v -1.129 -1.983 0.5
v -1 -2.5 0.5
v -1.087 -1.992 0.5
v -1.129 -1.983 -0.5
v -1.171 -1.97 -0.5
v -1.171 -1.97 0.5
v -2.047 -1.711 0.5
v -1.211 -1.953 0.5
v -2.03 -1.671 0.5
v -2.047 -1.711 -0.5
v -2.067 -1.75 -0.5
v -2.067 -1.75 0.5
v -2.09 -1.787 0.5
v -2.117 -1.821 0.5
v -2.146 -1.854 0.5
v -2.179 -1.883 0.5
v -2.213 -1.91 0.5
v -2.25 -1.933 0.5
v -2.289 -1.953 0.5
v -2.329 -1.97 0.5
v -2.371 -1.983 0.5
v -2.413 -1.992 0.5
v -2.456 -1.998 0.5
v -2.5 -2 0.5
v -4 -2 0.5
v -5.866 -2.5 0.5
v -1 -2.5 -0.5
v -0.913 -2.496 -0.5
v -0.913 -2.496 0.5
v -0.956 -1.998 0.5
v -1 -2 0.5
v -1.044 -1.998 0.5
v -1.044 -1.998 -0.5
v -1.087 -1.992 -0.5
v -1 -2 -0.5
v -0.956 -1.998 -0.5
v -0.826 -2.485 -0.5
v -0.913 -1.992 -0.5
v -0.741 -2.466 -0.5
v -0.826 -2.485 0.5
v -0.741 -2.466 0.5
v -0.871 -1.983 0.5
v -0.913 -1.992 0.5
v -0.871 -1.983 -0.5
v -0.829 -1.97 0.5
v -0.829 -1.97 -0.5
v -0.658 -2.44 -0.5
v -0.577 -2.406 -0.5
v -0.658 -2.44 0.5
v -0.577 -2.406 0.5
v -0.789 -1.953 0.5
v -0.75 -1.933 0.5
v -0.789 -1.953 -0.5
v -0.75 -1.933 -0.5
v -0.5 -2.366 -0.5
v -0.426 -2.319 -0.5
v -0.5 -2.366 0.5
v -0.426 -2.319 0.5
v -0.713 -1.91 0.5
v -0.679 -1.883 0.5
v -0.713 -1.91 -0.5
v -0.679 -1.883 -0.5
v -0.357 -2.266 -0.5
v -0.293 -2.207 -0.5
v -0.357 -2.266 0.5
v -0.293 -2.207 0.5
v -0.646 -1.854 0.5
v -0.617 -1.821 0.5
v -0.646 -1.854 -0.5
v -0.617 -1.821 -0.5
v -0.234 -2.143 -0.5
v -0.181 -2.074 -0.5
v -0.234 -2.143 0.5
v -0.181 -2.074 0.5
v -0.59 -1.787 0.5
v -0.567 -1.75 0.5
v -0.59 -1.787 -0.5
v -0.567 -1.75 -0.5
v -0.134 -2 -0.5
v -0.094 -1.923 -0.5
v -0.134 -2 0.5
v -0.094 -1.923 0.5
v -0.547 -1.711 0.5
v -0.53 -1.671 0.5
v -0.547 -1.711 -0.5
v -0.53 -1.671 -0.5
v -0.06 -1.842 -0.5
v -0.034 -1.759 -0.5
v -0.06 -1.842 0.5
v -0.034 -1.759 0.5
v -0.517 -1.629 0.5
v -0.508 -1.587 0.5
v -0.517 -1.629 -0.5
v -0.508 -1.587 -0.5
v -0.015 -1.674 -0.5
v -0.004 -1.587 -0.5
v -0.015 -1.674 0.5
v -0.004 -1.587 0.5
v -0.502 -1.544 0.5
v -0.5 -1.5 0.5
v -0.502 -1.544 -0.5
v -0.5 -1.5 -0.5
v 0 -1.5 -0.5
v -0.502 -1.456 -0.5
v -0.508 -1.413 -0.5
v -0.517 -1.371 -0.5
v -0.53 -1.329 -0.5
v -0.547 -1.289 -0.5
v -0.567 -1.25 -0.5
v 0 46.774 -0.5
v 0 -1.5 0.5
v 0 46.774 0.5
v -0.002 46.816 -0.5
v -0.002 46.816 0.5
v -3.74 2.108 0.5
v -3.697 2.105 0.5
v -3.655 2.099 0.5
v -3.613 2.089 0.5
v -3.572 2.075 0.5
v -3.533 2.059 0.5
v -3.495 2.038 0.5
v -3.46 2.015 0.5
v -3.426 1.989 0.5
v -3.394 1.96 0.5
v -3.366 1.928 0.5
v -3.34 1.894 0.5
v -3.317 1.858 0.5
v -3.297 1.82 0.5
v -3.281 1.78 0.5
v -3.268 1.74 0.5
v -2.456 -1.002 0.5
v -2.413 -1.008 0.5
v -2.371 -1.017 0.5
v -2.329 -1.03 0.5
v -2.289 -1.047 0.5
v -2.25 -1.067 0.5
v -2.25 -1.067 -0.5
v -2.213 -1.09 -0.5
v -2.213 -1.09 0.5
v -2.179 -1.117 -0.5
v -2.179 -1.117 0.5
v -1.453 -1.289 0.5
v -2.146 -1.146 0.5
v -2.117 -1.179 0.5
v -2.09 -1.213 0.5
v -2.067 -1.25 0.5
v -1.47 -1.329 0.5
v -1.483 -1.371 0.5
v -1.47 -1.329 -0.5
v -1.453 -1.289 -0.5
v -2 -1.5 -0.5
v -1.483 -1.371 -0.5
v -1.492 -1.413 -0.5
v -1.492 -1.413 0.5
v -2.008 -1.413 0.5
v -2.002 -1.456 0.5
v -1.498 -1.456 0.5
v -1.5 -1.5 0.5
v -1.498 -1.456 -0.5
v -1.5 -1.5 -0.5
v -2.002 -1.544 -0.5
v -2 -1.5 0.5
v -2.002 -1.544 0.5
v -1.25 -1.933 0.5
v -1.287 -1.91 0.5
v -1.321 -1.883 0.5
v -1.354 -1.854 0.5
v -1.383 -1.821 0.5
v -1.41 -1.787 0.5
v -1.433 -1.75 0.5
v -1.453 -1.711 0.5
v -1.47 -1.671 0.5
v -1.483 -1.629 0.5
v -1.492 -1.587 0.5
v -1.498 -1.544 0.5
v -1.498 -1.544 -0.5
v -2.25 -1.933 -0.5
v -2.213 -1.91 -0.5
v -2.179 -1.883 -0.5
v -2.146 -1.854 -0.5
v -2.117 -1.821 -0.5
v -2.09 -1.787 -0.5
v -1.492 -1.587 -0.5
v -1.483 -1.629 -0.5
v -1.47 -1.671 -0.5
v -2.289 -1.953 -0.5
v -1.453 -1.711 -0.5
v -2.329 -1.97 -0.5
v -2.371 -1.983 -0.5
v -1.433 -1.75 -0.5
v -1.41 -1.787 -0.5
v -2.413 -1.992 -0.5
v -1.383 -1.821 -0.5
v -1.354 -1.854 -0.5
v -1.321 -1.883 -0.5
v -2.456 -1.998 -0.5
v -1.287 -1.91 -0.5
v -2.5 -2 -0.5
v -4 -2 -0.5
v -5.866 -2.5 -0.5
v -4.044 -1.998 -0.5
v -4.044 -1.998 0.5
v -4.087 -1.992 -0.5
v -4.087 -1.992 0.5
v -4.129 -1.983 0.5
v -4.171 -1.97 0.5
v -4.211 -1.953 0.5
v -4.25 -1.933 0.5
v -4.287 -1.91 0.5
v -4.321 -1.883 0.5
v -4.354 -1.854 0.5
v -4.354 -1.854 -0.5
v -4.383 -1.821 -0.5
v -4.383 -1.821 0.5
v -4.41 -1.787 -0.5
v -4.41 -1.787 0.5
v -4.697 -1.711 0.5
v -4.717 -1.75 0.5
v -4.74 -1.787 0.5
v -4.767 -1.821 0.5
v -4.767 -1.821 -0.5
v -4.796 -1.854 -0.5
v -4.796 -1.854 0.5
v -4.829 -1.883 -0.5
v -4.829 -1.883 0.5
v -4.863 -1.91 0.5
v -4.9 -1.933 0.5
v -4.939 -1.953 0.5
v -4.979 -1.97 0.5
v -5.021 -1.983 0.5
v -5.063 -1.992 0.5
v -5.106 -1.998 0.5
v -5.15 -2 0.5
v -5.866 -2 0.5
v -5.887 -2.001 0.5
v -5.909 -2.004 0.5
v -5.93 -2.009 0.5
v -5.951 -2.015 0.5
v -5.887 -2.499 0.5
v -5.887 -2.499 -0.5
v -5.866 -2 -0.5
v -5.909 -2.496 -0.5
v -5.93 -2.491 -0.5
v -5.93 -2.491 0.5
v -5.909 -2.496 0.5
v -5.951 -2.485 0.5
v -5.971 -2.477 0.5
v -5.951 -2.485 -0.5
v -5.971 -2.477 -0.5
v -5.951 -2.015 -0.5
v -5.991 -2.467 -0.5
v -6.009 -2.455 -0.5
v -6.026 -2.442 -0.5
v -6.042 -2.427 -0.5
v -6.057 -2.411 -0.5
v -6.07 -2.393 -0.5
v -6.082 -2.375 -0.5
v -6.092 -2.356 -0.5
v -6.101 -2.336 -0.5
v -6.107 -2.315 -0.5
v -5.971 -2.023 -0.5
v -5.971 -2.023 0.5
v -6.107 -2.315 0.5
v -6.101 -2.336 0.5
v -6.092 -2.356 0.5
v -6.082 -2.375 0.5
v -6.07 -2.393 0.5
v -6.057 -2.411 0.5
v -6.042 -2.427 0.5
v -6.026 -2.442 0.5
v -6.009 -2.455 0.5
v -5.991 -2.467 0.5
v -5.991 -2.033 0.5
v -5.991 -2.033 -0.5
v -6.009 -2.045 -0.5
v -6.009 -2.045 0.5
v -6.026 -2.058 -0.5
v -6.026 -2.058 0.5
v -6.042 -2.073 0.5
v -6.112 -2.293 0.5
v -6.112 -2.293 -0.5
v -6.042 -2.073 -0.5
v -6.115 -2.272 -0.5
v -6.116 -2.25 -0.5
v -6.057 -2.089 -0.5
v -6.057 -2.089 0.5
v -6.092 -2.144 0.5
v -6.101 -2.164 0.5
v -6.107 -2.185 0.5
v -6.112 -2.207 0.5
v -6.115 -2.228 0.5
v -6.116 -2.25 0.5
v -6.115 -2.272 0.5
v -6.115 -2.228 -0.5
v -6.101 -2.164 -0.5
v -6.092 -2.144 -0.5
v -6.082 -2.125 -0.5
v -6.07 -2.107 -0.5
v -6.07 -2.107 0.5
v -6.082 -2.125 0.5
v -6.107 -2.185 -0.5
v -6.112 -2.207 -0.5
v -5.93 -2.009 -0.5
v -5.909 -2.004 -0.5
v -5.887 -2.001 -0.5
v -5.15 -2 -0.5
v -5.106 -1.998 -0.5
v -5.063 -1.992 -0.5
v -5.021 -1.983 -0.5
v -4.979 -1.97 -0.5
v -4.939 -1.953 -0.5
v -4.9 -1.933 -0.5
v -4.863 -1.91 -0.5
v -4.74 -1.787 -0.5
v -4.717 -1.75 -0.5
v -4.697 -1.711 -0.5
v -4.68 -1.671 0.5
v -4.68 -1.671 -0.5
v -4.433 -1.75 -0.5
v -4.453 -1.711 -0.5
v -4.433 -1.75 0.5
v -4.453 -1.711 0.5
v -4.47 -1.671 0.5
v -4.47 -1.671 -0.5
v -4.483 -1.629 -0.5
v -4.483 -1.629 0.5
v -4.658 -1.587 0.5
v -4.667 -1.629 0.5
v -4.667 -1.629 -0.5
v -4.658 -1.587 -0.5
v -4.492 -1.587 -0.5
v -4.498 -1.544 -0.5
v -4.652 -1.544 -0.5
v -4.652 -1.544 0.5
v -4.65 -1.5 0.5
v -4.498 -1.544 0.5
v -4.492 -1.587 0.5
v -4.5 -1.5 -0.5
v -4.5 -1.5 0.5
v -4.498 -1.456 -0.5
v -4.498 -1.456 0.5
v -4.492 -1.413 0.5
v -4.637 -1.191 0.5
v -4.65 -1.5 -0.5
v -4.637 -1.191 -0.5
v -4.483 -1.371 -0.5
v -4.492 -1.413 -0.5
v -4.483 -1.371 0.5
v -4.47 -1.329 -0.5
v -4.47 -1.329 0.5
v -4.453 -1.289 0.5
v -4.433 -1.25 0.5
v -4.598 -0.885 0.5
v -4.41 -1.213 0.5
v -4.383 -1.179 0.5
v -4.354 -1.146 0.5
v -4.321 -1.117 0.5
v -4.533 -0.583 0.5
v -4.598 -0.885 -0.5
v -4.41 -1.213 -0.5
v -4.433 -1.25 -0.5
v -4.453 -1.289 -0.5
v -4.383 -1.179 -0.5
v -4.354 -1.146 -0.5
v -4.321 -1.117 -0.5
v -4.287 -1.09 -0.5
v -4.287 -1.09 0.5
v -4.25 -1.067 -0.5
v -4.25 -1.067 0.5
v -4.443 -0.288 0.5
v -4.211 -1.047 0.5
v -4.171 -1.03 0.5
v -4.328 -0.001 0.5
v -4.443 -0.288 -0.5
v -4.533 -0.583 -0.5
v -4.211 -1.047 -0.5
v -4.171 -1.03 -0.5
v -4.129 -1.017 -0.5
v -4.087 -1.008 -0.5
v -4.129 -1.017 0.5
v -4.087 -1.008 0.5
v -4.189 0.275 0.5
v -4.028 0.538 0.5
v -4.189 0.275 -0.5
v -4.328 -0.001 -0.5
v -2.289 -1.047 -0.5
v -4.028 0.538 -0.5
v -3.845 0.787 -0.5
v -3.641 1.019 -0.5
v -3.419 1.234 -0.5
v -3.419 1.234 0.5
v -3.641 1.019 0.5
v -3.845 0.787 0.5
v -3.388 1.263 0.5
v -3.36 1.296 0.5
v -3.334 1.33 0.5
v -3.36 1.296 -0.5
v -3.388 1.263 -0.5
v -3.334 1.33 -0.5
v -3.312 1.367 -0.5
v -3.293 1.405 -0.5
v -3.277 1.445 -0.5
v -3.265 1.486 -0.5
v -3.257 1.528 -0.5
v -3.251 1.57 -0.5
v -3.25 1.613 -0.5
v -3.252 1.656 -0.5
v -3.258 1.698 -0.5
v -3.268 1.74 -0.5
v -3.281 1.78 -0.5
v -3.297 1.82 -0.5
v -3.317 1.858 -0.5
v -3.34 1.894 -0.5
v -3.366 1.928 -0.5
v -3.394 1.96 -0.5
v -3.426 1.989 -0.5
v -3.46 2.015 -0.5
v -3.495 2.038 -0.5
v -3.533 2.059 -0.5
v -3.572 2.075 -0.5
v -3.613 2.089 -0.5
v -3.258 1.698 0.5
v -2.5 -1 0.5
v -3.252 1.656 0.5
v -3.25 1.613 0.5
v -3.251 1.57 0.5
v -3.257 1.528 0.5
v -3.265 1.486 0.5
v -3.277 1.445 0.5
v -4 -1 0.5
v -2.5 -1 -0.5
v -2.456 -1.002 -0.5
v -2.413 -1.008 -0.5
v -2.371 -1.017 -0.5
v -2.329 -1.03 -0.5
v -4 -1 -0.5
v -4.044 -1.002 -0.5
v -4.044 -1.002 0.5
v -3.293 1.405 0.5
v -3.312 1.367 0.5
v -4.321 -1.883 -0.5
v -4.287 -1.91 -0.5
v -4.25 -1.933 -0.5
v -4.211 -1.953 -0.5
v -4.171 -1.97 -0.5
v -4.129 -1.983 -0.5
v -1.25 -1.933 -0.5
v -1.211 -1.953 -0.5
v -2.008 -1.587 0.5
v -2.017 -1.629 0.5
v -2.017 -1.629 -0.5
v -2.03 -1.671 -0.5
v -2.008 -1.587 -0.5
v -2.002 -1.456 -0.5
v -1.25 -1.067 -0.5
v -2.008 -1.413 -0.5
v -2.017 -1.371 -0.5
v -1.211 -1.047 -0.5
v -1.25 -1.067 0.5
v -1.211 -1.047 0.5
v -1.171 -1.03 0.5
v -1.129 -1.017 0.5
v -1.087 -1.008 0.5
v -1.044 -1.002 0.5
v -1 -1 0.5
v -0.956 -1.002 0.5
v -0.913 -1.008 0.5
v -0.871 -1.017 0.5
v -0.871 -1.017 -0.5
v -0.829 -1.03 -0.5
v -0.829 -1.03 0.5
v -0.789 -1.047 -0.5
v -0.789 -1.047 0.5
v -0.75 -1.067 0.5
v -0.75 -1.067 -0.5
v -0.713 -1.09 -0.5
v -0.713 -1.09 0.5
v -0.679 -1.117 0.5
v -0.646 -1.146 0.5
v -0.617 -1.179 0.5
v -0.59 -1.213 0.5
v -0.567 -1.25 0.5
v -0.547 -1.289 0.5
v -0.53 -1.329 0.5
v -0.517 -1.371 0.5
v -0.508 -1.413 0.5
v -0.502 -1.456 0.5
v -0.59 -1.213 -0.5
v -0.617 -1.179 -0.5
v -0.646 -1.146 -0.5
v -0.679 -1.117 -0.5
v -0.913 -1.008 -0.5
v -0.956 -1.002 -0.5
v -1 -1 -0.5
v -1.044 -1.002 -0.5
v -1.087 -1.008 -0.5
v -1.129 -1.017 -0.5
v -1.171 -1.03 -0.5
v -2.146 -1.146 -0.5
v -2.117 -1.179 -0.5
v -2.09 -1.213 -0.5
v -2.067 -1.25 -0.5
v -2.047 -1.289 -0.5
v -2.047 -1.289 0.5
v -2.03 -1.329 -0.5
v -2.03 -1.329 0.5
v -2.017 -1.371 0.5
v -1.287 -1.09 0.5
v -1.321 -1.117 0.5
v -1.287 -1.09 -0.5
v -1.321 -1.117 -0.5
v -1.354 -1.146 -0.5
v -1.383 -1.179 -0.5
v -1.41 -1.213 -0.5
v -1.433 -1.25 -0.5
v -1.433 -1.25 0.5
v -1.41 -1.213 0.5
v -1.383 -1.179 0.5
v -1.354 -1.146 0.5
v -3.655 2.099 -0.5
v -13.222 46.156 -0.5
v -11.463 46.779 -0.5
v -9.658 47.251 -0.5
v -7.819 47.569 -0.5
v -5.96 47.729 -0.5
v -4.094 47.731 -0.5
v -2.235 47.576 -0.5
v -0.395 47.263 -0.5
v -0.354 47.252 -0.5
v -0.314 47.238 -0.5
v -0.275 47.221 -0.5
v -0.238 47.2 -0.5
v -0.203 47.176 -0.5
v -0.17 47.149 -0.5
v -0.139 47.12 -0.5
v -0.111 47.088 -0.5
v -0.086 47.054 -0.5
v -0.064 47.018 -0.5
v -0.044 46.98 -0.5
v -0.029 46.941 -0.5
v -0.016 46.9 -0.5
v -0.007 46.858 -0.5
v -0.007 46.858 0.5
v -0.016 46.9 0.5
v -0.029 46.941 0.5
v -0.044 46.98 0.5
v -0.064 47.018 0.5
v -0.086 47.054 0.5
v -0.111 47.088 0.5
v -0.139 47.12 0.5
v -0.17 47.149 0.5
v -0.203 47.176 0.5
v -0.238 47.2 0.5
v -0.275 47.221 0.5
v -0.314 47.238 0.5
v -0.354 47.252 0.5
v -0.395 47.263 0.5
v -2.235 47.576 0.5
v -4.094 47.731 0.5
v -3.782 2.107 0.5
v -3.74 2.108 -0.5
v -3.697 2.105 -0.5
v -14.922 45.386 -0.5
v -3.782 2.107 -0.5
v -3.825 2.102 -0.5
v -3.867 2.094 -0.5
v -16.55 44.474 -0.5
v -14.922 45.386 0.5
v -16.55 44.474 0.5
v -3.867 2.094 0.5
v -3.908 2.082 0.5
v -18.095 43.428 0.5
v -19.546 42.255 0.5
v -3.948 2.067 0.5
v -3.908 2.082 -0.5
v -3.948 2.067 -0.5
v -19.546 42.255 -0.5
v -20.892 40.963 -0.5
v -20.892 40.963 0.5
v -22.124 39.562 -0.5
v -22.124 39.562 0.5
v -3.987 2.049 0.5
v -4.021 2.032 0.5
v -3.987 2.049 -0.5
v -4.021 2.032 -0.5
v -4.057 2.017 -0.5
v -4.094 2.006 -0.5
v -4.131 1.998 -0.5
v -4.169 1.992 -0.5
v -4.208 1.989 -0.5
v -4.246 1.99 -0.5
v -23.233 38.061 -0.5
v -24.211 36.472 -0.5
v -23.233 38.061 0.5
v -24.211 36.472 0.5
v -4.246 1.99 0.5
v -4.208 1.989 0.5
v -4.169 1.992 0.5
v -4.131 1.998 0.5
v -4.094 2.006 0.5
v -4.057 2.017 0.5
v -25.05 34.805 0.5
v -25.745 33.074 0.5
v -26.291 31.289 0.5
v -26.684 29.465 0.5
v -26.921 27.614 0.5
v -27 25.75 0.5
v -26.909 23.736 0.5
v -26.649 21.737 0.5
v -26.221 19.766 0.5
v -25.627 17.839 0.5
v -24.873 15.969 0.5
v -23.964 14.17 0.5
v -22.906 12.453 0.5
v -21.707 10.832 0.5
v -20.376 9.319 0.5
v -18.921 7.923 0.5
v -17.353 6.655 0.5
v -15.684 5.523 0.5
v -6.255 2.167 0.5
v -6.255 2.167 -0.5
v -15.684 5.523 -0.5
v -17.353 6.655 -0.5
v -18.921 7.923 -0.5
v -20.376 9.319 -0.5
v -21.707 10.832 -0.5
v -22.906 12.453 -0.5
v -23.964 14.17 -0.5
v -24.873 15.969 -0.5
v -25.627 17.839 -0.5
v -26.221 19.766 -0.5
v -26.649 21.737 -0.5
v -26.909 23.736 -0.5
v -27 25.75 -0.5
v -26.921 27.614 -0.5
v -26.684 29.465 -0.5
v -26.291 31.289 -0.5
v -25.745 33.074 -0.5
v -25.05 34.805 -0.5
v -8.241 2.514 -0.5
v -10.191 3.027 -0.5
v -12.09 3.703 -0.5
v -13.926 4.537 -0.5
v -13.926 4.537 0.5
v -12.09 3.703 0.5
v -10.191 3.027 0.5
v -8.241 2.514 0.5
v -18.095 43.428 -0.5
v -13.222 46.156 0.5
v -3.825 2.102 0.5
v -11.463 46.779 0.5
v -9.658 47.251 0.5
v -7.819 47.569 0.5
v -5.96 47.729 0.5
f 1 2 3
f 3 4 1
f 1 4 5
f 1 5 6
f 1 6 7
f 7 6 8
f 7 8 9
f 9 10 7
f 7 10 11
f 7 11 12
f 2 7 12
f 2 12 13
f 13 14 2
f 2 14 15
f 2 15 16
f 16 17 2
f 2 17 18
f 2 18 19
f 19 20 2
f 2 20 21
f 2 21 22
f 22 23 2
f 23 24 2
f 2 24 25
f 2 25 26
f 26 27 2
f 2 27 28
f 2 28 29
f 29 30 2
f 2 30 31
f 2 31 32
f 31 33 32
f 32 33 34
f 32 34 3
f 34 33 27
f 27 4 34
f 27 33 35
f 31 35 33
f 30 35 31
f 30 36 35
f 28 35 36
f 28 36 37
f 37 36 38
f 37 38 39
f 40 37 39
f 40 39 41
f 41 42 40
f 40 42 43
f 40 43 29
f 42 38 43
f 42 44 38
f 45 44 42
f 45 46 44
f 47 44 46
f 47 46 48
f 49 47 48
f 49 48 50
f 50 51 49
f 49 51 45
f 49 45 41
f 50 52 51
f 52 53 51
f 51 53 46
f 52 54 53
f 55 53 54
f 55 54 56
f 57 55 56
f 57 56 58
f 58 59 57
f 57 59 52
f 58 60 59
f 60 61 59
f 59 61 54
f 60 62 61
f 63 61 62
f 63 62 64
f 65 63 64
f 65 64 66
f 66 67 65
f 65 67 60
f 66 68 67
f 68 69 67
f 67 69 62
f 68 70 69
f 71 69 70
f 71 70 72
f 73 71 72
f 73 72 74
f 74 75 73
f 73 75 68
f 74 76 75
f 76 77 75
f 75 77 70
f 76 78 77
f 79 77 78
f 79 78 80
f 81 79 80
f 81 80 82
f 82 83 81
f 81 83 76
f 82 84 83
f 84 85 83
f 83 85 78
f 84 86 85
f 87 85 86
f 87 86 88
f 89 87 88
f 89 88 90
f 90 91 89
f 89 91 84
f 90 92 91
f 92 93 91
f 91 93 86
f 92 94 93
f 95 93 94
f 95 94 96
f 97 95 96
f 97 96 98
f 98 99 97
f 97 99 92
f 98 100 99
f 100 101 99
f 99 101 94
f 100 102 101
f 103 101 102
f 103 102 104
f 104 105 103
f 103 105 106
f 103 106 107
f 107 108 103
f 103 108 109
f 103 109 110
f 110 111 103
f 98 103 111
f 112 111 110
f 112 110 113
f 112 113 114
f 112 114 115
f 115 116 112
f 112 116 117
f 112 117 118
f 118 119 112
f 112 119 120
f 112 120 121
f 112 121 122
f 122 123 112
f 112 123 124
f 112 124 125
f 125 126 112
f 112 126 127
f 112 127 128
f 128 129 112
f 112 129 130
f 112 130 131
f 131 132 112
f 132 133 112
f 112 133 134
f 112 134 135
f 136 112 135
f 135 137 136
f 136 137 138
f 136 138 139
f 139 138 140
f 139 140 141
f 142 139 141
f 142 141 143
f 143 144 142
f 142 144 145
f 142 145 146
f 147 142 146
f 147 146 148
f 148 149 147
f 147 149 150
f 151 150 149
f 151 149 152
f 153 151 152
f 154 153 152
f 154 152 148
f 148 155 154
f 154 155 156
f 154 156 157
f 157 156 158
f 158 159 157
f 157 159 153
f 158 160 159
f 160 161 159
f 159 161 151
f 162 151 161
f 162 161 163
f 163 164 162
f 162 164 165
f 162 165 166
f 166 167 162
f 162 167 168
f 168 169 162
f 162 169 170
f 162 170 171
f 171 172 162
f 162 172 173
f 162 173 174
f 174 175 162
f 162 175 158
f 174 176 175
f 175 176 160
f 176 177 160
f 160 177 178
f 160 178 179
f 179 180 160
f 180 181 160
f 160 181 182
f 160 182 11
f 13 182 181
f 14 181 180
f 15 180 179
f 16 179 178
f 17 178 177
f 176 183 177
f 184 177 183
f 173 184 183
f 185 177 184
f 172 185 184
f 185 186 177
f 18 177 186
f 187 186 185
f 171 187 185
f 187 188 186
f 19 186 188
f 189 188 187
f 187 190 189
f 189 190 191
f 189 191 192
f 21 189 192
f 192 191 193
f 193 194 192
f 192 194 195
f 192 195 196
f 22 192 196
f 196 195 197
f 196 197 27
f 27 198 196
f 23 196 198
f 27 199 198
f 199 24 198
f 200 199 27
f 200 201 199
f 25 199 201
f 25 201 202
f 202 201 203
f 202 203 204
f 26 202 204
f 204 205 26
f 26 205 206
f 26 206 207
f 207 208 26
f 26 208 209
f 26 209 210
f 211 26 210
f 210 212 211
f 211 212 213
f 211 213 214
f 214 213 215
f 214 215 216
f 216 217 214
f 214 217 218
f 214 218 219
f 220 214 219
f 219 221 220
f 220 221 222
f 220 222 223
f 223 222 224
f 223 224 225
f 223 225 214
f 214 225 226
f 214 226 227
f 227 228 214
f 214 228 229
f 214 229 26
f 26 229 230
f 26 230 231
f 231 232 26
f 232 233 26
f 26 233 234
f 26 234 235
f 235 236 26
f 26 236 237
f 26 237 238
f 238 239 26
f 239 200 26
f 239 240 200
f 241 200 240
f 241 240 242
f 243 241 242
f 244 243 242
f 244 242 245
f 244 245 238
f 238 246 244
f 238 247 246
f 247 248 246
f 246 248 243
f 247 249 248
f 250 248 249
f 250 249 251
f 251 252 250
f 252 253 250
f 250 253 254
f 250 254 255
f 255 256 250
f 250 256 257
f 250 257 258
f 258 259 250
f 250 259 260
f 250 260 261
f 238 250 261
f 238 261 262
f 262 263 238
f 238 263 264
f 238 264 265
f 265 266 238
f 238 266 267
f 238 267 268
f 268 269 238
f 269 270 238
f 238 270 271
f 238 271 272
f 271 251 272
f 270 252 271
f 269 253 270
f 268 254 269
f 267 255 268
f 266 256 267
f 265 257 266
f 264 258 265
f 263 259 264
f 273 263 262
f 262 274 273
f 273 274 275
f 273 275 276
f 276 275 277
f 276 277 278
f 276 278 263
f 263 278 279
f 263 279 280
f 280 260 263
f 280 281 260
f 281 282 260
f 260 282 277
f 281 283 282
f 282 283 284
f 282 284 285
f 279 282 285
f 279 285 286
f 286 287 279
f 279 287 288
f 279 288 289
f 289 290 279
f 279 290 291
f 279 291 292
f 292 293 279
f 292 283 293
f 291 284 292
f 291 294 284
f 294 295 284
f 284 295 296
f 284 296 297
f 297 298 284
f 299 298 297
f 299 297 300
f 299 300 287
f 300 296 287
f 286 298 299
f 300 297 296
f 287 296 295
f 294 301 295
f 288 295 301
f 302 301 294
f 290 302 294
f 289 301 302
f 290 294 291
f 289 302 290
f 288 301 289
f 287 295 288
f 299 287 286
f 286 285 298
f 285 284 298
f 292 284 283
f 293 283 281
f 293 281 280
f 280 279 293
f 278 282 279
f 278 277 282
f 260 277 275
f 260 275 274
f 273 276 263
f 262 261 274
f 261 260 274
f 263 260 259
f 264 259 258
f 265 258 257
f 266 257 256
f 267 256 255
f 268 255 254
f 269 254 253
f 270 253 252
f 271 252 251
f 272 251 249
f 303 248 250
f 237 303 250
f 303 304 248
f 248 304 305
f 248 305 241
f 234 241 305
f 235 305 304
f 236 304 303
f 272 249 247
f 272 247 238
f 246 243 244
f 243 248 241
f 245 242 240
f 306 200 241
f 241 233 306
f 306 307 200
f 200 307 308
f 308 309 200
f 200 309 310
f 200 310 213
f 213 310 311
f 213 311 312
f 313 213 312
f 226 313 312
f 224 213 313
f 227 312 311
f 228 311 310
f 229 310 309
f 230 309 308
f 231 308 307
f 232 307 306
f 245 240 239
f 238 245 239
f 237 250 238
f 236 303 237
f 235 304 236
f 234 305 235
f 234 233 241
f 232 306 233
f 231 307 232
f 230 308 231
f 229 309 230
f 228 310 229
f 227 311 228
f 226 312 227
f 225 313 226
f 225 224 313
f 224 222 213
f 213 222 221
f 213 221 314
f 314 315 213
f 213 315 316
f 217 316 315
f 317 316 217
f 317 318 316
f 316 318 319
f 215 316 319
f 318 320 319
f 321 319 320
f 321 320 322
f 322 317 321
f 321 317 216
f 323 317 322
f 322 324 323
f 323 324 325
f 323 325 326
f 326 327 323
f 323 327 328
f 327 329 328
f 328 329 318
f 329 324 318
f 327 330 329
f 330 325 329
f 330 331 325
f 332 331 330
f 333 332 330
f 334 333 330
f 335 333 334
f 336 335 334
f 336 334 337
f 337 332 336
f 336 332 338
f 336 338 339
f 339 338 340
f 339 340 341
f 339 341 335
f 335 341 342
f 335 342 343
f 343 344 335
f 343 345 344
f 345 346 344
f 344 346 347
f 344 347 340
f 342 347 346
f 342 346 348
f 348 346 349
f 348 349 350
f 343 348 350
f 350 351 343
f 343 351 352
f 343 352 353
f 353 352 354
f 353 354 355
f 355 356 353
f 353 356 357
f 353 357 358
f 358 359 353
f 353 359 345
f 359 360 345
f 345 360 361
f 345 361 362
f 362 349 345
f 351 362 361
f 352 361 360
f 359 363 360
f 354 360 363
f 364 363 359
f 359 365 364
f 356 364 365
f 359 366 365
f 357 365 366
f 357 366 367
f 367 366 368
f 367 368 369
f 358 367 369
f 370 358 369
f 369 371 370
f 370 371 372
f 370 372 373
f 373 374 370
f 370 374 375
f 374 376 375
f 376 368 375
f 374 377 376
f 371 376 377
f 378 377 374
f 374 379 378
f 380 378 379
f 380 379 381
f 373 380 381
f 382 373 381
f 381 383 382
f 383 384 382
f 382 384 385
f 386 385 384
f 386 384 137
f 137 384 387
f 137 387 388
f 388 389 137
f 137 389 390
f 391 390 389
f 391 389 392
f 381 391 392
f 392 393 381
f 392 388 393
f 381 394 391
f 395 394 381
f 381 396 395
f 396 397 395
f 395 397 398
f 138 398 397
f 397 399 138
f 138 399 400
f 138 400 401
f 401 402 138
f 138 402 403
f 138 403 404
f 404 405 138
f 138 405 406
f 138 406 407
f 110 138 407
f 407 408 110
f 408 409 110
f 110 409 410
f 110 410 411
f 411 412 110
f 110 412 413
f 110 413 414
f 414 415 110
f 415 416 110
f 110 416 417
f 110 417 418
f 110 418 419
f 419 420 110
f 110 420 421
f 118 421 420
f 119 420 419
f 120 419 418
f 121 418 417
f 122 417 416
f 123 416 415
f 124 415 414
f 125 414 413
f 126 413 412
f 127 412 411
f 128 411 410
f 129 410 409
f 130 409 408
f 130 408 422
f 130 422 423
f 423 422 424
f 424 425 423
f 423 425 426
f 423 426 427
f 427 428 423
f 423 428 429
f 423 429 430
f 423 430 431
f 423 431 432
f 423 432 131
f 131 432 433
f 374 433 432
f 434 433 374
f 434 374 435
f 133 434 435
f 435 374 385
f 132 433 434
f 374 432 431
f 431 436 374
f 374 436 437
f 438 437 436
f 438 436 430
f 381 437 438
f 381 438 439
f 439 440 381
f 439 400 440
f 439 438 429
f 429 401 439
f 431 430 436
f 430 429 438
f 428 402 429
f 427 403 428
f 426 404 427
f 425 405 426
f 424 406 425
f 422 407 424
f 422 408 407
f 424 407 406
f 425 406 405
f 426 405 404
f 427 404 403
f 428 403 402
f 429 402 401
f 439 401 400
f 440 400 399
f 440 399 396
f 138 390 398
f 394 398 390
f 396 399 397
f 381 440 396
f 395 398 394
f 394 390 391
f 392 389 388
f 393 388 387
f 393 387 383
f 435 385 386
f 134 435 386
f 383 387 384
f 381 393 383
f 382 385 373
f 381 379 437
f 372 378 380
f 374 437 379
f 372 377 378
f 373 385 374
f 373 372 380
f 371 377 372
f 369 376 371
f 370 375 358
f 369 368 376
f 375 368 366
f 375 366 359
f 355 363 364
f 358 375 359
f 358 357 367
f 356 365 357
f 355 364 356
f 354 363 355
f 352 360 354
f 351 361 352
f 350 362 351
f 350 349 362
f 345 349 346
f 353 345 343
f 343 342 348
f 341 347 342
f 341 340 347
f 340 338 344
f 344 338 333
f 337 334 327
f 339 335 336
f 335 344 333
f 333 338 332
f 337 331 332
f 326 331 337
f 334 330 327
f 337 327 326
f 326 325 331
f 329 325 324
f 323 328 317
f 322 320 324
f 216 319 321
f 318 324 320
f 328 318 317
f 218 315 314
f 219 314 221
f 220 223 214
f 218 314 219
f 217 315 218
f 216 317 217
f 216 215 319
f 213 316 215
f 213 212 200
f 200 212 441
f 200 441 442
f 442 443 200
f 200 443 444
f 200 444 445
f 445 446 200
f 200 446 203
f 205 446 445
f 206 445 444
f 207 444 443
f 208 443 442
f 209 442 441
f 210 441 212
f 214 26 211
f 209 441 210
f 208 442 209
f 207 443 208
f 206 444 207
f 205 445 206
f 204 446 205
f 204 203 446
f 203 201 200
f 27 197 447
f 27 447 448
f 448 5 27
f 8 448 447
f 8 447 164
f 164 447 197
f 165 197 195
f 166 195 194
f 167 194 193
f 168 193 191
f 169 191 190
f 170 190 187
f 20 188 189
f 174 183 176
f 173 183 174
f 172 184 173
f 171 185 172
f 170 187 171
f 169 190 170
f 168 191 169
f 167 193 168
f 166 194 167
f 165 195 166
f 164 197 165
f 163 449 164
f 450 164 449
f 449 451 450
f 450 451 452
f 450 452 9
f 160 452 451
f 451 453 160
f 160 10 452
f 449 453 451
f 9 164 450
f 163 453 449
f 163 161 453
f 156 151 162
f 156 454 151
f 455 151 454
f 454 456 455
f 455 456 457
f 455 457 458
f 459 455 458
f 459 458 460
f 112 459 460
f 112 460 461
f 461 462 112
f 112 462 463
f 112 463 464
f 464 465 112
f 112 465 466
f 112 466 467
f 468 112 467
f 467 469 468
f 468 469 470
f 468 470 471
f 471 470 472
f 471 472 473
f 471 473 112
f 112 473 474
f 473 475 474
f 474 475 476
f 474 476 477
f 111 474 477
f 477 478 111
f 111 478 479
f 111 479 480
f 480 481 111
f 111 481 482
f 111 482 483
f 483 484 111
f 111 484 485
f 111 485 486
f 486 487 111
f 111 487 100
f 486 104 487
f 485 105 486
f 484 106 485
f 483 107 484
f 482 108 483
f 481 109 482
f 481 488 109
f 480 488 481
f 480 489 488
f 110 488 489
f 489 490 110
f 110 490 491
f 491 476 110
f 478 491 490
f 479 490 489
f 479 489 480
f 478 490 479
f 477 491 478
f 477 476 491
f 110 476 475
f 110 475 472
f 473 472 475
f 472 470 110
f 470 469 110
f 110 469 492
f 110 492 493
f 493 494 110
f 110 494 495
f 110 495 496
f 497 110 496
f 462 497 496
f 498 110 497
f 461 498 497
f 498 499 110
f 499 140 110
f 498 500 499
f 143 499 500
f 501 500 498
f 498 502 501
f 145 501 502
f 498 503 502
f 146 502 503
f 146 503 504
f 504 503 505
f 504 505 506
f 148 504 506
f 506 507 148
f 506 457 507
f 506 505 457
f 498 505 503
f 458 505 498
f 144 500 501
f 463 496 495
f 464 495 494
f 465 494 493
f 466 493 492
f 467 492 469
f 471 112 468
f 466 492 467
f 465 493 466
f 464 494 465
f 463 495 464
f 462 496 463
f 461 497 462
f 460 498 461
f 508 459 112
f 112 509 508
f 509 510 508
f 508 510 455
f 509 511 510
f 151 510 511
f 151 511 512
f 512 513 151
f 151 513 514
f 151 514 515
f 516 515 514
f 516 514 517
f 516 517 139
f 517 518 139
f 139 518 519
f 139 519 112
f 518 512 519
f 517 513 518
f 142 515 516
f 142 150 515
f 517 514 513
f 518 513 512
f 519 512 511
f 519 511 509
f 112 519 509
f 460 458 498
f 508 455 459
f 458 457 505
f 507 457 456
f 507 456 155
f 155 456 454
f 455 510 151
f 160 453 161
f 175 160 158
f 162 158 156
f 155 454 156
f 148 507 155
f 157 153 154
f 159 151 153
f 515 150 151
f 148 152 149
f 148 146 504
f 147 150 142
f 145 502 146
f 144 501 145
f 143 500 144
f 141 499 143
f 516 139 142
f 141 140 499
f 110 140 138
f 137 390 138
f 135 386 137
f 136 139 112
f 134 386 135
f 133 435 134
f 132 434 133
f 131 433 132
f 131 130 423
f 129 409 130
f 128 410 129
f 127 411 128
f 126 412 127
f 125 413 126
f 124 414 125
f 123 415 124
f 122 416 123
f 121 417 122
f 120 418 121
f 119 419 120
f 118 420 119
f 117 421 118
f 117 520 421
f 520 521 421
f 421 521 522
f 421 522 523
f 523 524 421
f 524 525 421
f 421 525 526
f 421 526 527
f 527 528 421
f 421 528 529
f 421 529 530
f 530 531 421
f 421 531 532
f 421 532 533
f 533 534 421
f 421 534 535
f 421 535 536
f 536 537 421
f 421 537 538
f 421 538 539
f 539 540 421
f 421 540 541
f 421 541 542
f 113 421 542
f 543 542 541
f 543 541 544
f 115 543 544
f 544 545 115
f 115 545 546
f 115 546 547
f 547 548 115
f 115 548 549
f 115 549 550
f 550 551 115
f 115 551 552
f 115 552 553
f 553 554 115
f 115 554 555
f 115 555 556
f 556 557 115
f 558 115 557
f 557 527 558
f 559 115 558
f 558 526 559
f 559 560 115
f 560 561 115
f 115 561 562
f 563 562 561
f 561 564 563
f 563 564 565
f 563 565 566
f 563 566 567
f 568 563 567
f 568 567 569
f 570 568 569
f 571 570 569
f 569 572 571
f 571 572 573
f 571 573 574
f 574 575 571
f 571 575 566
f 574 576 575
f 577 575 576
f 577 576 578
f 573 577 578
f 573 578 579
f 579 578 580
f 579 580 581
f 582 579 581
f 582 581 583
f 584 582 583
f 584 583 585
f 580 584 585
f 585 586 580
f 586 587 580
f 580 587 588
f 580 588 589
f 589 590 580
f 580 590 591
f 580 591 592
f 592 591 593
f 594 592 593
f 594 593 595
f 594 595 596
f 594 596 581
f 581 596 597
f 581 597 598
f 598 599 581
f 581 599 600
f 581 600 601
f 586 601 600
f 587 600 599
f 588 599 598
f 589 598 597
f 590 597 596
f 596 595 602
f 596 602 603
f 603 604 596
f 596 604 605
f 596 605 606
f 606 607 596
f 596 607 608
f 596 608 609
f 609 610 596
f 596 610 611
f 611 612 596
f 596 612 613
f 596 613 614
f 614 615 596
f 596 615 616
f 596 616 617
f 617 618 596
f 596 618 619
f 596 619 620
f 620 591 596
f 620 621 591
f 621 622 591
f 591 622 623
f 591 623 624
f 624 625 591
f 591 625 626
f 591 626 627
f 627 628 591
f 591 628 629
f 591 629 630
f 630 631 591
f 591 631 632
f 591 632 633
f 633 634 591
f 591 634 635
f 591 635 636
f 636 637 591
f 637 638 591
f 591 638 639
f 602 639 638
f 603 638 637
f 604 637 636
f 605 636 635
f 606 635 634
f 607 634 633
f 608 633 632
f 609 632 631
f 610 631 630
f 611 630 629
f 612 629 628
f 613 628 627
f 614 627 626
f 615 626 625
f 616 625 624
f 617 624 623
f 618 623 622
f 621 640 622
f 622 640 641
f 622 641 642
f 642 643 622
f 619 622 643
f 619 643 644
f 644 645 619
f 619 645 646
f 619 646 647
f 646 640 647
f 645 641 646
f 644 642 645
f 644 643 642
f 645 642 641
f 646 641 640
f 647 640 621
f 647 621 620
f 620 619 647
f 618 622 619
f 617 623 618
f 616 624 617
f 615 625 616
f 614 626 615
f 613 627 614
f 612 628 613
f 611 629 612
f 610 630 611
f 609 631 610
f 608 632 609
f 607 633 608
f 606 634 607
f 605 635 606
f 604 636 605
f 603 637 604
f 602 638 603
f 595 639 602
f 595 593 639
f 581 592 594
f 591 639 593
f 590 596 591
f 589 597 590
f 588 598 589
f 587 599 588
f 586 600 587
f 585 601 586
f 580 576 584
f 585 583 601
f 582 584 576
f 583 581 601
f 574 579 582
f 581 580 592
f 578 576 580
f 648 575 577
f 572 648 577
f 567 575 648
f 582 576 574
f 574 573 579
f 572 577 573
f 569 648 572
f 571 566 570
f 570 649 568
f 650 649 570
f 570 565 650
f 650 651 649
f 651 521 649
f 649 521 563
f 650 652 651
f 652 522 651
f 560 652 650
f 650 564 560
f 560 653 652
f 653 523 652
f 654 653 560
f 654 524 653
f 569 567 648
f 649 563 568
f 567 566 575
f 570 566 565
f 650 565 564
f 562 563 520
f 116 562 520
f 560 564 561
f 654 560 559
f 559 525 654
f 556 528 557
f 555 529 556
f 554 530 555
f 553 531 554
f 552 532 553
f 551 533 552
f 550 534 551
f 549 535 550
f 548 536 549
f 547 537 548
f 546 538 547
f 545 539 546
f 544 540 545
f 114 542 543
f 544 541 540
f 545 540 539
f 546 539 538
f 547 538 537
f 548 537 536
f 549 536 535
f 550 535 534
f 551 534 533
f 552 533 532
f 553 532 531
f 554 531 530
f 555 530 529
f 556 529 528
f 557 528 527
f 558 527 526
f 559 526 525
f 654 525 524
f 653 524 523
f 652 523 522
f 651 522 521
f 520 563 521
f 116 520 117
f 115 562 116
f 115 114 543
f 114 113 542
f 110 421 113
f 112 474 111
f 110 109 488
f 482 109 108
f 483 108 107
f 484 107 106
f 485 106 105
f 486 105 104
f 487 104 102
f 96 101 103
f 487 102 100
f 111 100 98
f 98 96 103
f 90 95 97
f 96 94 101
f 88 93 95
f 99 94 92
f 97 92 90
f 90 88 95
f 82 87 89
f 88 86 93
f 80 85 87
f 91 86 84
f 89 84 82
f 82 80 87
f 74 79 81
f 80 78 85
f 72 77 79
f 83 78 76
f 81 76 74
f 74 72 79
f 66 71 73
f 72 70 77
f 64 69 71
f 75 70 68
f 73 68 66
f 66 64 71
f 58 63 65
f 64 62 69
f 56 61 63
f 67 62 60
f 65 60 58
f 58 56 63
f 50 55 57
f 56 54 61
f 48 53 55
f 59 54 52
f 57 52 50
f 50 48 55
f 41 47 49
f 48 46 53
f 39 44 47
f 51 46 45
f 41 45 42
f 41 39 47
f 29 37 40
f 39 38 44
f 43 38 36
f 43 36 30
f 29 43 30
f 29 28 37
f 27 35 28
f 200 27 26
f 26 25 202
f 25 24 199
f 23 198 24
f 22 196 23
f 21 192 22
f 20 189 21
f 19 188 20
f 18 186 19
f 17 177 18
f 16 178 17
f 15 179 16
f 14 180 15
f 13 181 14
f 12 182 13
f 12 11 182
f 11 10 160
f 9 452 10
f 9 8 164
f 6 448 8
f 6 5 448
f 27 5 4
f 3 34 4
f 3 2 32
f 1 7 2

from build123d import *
from OCP.BRepFilletAPI import BRepFilletAPI_MakeFillet

# Parameters (mm, degrees)
SKETCH2_R           = 0.5
BOSS_EXTRUDE1_DEPTH = 0.5
FILLET1_R           = 0.5
FILLET1_R_2         = 0.25


with BuildPart() as part:
    # Sketch2 → Boss-Extrude1 (new, symmetric)
    with BuildSketch(Plane.XY):
        with BuildLine():
            Line((0, -1.5), (0, 47.174281802))
            ThreePointArc((0, 47.174281802), (-18.674791912, 42.983685528), (-26.999996608, 25.75))
            ThreePointArc((-26.999996608, 25.75), (-20.318377061, 9.259170115), (-4.081325301, 1.982518397))
            ThreePointArc((-4.081325301, 1.982518397), (-3.375535656, 1.939379355), (-3.418674699, 1.23358971))
            ThreePointArc((-3.418674699, 1.23358971), (-4.423027454, -0.232962886), (-4.615591238, -2))
            Line((-4.615591238, -2), (-6.115591238, -2))
            Line((-6.115591238, -2), (-6.115591238, -2.5))
            Line((-6.115591238, -2.5), (-1, -2.5))
            ThreePointArc((-1, -2.5), (-0.292893219, -2.207106781), (0, -1.5))
        make_face()
        with Locations((-1, -1.5)):
            Circle(SKETCH2_R, mode=Mode.SUBTRACT)
        with BuildLine():
            Line((-4, -1), (-2.5, -1))
            ThreePointArc((-2.5, -1), (-2, -1.5), (-2.5, -2))
            Line((-2.5, -2), (-4, -2))
            ThreePointArc((-4, -2), (-4.5, -1.5), (-4, -1))
        make_face(mode=Mode.SUBTRACT)
    extrude(amount=BOSS_EXTRUDE1_DEPTH, both=True)

    # Fillet1
    fillet1_edges_1 = [part.edges().sort_by_distance(p)[0] for p in [
        (-4.081325301, 1.982518397, 0),
        (-4.615591238, -2, 0),
        (0, 47.174281802, 0),
    ]]
    fillet1_edges_2 = [part.edges().sort_by_distance(p)[0] for p in [
        (-6.115591238, -2.5, 0),
        (-6.115591238, -2, 0),
    ]]
    fillet1 = BRepFilletAPI_MakeFillet(part.part.solid().wrapped)
    for e in fillet1_edges_1:
        fillet1.Add(FILLET1_R - 0.0001, e.wrapped)
    for e in fillet1_edges_2:
        fillet1.Add(FILLET1_R_2 - 0.0001, e.wrapped)
    add(Compound.cast(fillet1.Shape()), mode=Mode.REPLACE)  # a hair under: the kernel refuses the full size


solid = part.part
